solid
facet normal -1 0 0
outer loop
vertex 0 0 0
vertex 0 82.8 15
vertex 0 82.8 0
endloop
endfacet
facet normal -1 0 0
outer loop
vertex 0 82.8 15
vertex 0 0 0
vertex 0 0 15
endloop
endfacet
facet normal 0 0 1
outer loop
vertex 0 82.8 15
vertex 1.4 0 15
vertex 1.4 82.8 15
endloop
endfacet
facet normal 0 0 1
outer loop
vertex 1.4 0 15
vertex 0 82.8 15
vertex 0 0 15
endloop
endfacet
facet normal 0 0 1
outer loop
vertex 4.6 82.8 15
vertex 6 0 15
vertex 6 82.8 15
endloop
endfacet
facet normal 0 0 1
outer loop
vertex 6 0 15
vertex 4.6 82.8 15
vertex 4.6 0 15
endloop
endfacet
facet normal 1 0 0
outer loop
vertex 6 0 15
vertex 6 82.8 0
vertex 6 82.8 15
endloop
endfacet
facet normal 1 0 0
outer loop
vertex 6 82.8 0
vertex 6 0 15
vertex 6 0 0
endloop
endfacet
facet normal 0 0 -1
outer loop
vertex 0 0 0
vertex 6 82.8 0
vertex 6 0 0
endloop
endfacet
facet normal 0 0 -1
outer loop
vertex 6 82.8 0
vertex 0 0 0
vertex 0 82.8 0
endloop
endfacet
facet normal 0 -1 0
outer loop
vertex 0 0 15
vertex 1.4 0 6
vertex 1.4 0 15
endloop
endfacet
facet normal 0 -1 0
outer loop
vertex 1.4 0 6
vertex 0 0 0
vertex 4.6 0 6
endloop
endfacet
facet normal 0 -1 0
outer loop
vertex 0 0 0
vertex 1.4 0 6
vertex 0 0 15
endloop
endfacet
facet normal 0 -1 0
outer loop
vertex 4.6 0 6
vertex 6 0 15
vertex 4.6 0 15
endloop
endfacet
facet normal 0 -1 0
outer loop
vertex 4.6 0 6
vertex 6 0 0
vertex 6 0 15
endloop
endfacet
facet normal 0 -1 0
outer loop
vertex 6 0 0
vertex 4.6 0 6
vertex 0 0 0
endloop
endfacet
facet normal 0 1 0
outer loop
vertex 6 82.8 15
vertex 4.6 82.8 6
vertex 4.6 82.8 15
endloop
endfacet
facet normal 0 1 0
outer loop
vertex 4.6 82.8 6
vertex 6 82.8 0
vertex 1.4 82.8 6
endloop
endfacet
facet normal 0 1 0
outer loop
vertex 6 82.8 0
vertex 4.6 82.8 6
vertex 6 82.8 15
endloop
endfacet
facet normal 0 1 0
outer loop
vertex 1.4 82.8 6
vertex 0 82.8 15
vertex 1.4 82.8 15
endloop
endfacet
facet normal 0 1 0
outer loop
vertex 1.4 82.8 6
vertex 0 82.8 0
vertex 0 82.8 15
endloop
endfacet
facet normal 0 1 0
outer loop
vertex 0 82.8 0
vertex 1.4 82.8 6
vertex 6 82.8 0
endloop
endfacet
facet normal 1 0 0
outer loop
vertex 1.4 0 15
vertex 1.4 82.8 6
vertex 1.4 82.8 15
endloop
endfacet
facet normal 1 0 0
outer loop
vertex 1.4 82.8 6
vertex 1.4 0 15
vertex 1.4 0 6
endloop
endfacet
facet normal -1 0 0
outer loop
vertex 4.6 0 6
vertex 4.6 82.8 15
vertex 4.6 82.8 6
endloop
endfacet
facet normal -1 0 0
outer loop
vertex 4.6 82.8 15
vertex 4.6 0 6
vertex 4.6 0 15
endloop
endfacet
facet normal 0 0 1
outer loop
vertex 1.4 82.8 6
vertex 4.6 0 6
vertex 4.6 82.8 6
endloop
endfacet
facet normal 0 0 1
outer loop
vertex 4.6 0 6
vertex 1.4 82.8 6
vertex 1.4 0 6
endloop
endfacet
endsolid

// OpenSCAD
01_Main_Dim = 82.8;
02_Width = 6;
03_Height = 15;
04_Slot_Width = 3;
05_Slot_Depth = 9;
06_Clearance = 0.1;
BigNum = 9999;
SmallNum = .01;
Slot_x = (02_Width-04_Slot_Width-06_Clearance*2)/2;

Text_Height = 10;
Text_Thick = 15;

difference()
	{
	
    // Main body
        cube([ 02_Width, 01_Main_Dim, 03_Height]);
	
        translate([Slot_x, -SmallNum, 03_Height-05_Slot_Depth])
		cube([04_Slot_Width+06_Clearance*2, BigNum, BigNum]);
        
	
	}
